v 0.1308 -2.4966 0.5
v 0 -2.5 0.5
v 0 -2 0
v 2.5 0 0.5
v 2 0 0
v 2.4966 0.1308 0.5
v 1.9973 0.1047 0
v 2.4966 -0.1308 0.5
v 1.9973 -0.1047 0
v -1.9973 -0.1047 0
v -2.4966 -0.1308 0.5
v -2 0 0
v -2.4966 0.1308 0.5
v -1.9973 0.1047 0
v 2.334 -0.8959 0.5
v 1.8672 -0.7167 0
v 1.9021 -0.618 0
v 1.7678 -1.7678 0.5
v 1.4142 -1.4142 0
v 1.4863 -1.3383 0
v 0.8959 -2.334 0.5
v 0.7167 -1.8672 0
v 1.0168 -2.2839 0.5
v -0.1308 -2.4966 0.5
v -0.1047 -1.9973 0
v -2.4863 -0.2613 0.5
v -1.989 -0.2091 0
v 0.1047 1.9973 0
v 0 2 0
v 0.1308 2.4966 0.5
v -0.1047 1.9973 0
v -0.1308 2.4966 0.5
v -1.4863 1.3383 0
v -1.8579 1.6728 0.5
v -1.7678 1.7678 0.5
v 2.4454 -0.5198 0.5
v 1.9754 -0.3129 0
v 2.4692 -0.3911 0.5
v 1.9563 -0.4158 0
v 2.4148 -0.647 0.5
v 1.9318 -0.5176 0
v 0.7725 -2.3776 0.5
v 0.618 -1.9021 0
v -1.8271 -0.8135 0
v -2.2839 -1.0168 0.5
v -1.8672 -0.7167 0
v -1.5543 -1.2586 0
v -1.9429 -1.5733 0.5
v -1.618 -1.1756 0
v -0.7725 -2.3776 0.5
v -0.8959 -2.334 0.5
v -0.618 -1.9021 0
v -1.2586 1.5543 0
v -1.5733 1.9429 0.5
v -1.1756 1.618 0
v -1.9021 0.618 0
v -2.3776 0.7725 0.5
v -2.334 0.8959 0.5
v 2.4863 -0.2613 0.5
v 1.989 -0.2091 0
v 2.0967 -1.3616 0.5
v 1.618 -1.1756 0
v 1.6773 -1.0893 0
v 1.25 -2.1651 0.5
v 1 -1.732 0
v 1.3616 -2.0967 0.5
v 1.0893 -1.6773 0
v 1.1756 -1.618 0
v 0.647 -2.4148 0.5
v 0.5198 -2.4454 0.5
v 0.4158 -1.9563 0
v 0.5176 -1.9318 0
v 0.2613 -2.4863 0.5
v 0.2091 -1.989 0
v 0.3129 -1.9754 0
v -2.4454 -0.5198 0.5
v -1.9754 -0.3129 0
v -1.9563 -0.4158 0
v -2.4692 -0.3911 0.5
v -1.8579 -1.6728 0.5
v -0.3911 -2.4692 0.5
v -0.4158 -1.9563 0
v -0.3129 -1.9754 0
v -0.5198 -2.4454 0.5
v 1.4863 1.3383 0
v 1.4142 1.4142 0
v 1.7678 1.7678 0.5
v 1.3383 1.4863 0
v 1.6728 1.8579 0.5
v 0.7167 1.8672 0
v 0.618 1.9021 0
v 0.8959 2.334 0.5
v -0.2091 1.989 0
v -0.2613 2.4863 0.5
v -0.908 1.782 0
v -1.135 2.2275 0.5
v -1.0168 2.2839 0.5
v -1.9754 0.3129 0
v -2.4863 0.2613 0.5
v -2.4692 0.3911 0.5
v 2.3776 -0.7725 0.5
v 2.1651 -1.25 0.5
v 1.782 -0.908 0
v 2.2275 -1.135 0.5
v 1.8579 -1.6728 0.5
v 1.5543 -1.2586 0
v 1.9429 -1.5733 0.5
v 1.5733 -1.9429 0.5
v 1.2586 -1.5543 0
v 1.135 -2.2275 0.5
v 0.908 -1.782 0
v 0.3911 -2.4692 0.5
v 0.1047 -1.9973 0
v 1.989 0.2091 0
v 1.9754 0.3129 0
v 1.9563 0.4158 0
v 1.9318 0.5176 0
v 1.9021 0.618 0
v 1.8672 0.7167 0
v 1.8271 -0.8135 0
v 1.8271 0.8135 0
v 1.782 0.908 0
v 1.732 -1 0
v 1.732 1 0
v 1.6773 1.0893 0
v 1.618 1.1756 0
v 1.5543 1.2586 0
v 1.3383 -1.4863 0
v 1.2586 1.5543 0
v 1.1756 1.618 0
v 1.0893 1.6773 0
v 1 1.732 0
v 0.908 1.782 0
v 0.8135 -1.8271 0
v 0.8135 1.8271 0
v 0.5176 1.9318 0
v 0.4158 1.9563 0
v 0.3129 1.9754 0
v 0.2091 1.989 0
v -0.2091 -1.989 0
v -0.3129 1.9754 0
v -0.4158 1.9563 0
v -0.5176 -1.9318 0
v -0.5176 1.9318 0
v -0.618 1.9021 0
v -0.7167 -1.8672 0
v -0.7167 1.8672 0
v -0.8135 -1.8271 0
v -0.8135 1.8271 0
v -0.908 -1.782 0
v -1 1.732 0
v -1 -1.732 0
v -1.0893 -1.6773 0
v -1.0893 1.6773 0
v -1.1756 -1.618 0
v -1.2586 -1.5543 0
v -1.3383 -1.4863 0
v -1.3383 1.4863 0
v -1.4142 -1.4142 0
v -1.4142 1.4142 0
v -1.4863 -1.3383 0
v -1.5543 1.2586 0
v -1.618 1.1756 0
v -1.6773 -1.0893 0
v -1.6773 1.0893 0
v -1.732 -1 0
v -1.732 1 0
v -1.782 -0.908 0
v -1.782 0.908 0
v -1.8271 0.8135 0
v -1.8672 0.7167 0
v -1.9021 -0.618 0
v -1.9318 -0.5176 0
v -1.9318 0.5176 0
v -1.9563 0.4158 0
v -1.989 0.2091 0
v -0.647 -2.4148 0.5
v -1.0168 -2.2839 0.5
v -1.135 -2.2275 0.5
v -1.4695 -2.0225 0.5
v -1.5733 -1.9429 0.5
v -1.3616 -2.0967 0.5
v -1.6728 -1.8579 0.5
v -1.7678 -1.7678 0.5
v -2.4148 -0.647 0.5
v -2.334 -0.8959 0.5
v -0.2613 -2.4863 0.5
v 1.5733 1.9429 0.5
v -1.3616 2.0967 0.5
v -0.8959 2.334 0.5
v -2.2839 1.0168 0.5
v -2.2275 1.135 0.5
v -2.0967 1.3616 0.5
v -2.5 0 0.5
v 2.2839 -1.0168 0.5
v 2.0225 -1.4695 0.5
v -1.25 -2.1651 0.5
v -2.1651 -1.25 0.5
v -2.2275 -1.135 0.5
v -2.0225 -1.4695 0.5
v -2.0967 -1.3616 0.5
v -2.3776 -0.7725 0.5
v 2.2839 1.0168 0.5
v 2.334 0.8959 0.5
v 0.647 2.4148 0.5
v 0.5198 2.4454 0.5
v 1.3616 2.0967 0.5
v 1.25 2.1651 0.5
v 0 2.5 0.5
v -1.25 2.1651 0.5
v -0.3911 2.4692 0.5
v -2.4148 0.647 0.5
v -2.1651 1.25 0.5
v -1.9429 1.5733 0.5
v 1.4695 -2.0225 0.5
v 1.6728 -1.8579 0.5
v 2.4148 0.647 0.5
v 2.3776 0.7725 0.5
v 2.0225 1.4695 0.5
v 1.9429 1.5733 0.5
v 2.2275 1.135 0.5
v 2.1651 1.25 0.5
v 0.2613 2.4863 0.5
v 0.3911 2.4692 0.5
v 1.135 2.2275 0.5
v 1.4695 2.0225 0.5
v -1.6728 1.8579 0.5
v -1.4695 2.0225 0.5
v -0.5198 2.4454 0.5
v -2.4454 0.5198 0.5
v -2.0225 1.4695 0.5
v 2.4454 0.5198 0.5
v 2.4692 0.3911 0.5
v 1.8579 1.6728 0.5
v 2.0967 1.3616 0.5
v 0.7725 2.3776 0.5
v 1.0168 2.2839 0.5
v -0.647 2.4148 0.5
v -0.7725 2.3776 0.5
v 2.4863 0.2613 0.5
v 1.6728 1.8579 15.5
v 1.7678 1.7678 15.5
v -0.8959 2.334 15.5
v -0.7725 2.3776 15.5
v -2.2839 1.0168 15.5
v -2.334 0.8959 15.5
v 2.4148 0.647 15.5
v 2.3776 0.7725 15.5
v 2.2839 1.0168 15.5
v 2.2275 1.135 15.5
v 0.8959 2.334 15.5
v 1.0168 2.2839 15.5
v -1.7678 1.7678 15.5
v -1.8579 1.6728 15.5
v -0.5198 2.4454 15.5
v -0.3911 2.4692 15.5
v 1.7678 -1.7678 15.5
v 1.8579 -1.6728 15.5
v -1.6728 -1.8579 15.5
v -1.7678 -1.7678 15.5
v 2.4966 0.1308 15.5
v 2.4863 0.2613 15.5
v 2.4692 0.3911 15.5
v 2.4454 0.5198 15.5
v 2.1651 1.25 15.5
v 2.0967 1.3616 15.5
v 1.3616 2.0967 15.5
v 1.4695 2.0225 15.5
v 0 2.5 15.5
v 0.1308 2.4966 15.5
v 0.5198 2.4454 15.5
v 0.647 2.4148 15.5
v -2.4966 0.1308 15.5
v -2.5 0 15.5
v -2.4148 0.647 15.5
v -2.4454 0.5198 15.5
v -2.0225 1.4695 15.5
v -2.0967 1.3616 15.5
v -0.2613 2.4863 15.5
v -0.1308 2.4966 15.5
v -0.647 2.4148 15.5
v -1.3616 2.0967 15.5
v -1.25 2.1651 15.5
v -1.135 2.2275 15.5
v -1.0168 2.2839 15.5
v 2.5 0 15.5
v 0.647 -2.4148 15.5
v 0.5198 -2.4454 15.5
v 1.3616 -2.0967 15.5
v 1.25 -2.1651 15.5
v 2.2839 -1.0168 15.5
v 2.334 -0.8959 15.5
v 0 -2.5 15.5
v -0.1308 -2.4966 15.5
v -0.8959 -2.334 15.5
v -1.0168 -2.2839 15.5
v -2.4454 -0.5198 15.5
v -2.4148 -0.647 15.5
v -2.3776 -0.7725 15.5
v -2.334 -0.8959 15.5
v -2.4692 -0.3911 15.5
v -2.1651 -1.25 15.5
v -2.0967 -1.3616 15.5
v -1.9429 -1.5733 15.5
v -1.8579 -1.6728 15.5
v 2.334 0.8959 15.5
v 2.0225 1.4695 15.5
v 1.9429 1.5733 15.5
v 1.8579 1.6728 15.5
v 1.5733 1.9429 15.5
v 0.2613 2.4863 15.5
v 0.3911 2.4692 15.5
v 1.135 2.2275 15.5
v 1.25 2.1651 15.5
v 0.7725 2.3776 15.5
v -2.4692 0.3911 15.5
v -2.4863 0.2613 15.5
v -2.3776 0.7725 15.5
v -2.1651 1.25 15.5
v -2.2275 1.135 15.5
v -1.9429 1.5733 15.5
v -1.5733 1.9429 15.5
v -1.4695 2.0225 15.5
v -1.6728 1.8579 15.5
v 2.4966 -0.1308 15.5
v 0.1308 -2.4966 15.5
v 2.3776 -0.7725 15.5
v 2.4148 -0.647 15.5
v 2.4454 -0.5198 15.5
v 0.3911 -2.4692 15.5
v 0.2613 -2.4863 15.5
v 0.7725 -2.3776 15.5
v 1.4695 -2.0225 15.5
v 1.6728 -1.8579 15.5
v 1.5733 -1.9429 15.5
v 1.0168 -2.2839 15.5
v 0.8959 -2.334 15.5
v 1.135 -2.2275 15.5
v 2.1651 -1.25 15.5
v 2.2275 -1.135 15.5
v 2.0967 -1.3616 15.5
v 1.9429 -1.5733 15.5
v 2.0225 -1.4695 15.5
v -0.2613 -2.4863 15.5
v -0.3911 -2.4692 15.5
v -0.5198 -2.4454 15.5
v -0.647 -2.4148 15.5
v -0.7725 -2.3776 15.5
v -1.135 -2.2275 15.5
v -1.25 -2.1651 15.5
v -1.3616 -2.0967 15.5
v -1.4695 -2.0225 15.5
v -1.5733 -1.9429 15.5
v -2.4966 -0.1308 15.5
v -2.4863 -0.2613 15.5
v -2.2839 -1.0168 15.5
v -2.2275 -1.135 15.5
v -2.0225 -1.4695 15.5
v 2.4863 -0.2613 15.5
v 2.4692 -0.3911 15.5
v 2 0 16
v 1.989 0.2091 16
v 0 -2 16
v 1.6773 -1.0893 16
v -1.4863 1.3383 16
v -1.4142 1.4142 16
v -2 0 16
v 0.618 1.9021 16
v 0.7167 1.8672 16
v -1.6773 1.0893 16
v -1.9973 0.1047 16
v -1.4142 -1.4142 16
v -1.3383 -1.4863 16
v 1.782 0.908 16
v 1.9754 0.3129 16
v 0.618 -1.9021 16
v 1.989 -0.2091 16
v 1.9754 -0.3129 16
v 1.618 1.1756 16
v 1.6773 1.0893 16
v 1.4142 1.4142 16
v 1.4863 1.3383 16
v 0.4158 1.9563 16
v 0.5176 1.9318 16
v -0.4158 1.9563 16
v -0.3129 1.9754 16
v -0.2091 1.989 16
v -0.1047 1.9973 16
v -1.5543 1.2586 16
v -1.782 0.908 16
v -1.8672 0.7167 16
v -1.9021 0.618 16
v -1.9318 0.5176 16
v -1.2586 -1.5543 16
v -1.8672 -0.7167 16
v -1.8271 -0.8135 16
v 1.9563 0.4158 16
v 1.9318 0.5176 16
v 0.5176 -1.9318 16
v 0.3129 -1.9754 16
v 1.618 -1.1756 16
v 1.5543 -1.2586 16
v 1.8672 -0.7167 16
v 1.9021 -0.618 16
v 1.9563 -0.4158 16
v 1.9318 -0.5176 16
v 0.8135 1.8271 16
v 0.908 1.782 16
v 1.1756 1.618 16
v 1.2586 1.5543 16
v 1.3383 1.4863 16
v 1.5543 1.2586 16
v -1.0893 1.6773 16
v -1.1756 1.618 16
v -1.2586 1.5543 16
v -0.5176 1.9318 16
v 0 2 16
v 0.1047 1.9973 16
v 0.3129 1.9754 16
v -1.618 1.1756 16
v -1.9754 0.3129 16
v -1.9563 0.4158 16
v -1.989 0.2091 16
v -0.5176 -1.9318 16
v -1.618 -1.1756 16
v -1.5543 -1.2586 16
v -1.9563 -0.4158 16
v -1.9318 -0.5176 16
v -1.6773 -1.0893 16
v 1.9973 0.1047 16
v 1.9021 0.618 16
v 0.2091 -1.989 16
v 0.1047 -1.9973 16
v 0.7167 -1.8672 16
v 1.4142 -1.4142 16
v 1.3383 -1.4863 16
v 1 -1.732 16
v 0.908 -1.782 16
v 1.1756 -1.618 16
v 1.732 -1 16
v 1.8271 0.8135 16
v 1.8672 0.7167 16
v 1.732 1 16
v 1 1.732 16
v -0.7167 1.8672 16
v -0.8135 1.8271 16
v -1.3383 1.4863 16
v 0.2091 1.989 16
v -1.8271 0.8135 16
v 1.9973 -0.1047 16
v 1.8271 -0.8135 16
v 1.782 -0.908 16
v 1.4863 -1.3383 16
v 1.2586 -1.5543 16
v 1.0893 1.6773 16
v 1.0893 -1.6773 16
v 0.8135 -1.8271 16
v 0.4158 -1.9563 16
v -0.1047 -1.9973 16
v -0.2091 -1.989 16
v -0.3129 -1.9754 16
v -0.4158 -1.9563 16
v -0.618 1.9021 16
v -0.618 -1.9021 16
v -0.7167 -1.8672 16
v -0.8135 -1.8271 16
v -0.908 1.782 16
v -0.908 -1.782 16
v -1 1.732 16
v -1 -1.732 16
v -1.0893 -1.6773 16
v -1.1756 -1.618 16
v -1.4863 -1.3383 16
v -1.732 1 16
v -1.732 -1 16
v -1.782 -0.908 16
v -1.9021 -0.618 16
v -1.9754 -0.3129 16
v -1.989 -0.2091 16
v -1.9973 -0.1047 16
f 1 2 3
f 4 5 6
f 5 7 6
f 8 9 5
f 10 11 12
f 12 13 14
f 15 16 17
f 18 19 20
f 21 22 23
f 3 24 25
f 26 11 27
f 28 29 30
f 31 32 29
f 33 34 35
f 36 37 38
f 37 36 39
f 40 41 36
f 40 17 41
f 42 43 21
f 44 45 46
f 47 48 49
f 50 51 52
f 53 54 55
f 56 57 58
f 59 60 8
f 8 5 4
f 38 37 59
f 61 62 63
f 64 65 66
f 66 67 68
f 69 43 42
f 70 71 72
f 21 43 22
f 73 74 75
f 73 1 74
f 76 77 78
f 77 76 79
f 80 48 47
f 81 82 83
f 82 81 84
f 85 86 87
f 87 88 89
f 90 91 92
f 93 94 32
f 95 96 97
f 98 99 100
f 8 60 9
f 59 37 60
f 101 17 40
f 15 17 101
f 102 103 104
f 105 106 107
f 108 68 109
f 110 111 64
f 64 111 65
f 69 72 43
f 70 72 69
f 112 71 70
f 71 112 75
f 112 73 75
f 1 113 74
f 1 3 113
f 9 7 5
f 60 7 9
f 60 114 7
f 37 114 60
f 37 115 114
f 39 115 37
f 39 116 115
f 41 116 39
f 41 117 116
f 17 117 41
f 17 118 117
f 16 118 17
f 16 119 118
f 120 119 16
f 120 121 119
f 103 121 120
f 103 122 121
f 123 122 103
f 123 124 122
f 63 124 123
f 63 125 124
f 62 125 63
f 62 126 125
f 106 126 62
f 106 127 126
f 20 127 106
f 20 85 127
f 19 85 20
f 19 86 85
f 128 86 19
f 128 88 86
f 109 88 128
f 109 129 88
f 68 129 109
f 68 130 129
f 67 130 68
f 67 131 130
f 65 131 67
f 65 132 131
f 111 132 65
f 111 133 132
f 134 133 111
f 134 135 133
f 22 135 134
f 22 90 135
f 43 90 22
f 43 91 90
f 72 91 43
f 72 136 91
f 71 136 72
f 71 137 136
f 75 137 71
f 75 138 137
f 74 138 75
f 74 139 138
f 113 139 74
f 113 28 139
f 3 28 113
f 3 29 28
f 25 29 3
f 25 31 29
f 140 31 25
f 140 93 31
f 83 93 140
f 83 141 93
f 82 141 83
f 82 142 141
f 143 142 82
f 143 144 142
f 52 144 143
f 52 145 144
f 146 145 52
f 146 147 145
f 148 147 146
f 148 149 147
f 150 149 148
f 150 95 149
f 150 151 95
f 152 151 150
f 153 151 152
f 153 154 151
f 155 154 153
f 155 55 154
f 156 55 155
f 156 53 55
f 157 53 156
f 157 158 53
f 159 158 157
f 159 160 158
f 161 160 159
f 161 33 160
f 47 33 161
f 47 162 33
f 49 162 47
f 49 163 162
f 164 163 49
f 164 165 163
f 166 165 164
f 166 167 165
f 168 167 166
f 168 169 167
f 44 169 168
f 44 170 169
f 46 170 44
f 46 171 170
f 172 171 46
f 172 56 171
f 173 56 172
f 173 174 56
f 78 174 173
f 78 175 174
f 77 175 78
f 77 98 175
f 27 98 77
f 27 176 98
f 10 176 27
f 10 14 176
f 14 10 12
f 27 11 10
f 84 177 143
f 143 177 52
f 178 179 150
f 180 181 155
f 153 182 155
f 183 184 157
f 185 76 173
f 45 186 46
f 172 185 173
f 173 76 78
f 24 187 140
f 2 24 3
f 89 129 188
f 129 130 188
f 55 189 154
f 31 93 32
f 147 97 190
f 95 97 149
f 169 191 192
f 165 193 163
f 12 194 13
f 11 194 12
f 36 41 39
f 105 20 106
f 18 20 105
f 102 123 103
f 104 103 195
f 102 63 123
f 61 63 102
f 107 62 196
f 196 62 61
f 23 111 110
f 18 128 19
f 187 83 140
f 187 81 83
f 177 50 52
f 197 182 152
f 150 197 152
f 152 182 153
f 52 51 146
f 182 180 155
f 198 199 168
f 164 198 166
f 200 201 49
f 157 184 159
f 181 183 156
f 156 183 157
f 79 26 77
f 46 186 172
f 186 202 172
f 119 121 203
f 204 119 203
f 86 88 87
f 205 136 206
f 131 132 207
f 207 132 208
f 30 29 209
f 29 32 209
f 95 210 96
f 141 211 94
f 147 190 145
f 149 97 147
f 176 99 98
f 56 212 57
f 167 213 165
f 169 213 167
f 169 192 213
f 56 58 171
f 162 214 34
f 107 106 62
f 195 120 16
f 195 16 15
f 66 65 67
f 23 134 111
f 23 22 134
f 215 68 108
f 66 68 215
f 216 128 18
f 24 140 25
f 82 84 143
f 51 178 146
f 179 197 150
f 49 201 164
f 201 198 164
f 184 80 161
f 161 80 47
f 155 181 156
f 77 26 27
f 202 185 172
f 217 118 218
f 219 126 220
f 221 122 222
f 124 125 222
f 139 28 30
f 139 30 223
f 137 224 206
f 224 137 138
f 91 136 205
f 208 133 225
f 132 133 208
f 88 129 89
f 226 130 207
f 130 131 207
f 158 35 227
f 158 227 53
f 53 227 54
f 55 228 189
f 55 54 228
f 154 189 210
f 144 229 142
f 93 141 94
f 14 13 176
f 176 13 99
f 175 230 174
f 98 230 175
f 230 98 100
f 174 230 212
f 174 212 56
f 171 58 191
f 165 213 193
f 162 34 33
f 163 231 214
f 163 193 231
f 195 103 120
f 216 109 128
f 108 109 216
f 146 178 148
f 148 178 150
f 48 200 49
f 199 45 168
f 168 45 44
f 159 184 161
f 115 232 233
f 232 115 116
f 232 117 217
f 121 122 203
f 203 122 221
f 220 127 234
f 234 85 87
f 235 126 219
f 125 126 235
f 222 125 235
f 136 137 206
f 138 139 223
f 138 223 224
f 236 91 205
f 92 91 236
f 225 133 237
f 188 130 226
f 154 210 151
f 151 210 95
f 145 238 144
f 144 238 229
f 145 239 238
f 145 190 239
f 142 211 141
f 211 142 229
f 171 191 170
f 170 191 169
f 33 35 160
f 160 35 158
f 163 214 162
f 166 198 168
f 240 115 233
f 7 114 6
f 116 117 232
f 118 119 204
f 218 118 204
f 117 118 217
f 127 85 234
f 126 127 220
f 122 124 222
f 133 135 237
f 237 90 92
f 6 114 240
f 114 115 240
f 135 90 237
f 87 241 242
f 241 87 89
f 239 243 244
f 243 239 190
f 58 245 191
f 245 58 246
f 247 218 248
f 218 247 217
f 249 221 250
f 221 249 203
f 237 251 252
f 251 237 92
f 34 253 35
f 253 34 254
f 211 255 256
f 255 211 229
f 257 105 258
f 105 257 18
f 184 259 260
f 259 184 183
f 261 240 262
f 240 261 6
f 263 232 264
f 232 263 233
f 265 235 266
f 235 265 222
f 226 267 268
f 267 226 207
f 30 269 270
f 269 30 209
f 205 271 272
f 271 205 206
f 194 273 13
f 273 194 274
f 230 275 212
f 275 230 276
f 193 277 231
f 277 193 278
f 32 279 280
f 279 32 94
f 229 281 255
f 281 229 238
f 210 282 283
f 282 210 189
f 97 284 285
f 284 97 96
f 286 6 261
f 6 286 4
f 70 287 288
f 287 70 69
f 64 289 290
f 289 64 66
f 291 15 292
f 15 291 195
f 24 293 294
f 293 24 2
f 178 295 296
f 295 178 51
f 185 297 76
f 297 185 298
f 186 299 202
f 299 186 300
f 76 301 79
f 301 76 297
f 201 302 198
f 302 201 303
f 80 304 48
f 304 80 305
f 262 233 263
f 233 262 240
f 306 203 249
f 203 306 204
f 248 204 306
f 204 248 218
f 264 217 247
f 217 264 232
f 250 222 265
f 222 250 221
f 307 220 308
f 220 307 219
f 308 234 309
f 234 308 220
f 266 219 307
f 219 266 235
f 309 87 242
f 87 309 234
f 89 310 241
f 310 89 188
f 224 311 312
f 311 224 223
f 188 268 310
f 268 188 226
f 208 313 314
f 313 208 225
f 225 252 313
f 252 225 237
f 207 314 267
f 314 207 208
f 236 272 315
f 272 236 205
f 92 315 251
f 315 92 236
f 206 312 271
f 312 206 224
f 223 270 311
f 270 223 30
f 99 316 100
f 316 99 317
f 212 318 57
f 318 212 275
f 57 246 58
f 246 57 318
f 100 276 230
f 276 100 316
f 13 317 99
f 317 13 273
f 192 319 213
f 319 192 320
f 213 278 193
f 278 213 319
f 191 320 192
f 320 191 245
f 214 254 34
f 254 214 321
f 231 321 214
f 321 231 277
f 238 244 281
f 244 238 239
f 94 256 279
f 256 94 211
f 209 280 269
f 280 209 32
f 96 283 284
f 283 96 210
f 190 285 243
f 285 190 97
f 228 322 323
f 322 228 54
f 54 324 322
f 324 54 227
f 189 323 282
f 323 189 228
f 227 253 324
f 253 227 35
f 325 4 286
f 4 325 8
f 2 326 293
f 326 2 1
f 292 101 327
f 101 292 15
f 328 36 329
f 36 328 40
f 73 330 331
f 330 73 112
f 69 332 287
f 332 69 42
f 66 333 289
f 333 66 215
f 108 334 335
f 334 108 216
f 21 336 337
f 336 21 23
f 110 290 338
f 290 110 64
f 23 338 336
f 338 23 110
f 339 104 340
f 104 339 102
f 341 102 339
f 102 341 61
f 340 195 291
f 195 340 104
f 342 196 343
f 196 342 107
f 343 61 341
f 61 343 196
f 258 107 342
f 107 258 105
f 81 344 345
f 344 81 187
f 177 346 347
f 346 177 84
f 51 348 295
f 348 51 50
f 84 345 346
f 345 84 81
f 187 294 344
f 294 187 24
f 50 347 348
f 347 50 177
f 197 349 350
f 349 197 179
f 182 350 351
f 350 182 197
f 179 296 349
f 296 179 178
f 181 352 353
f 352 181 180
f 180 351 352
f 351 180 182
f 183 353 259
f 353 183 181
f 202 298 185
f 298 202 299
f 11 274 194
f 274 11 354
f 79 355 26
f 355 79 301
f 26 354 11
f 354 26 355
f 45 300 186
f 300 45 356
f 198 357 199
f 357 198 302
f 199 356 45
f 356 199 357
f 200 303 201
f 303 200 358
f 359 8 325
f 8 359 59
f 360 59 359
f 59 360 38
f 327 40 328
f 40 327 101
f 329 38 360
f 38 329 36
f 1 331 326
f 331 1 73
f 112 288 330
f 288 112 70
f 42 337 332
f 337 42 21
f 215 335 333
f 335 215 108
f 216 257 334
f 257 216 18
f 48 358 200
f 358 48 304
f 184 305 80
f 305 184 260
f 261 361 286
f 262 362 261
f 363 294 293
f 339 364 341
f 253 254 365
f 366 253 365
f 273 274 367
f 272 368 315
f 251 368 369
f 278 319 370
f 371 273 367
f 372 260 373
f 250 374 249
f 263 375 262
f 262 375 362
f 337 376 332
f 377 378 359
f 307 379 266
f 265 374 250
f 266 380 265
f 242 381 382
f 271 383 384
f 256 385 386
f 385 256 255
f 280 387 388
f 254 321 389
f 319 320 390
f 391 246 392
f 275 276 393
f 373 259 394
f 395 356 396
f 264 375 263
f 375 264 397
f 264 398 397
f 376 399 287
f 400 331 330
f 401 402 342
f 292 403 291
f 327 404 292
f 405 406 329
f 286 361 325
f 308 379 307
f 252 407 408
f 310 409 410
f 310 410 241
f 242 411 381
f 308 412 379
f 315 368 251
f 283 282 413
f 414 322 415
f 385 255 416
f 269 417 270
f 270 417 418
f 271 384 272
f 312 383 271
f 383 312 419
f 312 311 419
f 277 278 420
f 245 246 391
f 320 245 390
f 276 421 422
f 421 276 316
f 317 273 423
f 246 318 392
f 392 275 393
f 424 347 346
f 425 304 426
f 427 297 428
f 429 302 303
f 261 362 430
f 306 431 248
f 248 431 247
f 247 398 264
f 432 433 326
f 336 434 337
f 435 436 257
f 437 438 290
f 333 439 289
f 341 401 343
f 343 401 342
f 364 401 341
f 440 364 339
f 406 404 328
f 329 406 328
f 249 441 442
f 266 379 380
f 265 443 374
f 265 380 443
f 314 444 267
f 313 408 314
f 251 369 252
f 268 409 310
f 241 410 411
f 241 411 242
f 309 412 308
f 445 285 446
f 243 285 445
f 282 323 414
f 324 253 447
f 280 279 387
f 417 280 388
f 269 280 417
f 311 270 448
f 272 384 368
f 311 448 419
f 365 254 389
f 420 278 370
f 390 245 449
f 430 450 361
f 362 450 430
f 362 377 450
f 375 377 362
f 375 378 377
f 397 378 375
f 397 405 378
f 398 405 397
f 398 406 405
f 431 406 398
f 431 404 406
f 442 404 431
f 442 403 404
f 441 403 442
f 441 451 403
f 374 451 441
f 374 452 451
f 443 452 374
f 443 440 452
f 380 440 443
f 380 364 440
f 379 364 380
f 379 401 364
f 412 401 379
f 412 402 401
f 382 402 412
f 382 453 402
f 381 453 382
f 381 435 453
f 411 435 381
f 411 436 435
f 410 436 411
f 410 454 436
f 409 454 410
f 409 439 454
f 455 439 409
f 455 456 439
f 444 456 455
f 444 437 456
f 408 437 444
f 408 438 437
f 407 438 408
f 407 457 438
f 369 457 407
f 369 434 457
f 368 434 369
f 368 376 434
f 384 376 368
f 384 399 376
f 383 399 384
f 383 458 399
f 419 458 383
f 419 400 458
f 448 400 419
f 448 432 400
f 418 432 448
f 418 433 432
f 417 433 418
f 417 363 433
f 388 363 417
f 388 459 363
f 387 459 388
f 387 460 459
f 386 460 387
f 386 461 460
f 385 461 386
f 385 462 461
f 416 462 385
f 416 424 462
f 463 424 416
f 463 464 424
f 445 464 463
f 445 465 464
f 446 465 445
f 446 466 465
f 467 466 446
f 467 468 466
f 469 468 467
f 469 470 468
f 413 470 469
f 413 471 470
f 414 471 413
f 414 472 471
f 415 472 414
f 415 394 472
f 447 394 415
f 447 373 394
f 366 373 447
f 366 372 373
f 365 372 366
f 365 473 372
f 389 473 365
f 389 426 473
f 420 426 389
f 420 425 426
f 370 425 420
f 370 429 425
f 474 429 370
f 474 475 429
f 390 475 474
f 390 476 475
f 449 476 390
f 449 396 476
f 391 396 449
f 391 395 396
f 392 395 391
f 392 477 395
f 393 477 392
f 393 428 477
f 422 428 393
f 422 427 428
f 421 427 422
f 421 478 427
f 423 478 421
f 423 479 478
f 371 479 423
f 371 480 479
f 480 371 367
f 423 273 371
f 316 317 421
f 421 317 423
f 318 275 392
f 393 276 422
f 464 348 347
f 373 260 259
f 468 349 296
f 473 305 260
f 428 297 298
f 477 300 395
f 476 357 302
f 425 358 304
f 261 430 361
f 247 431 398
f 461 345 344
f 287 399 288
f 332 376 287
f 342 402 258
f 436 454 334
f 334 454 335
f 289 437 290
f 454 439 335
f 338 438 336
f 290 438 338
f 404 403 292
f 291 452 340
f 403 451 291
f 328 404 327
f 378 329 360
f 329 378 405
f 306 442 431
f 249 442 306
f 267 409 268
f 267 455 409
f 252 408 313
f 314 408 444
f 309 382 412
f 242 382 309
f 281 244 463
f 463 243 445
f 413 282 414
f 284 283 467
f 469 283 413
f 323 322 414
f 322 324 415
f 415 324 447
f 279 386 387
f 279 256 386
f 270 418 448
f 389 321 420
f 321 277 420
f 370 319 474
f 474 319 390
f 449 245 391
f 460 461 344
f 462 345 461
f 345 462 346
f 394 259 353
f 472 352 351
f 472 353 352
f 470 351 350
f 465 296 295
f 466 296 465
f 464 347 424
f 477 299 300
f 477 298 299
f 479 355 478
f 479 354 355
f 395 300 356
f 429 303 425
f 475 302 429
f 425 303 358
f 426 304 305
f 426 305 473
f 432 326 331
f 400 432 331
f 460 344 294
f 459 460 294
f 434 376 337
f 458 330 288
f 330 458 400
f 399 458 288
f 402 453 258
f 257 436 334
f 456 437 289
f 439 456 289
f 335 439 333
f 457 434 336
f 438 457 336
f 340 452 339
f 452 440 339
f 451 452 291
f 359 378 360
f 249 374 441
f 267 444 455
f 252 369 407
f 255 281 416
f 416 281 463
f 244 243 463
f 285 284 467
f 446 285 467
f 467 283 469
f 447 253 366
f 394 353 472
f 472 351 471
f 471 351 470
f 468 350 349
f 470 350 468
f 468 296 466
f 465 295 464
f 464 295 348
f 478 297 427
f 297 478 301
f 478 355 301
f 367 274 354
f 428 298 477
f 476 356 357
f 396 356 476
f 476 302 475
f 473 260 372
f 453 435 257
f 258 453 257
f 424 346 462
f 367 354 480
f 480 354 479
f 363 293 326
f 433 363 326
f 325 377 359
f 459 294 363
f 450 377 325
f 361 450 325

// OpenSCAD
cylinder(r1=2,r2=2.5,h=.5,$fn=120);
translate([0,0,.5]) cylinder(r=2.5,h=15,$fn=120);
translate([0,0,15.5]) cylinder(r1=2.5,r2=2,h=.5,$fn=120);
